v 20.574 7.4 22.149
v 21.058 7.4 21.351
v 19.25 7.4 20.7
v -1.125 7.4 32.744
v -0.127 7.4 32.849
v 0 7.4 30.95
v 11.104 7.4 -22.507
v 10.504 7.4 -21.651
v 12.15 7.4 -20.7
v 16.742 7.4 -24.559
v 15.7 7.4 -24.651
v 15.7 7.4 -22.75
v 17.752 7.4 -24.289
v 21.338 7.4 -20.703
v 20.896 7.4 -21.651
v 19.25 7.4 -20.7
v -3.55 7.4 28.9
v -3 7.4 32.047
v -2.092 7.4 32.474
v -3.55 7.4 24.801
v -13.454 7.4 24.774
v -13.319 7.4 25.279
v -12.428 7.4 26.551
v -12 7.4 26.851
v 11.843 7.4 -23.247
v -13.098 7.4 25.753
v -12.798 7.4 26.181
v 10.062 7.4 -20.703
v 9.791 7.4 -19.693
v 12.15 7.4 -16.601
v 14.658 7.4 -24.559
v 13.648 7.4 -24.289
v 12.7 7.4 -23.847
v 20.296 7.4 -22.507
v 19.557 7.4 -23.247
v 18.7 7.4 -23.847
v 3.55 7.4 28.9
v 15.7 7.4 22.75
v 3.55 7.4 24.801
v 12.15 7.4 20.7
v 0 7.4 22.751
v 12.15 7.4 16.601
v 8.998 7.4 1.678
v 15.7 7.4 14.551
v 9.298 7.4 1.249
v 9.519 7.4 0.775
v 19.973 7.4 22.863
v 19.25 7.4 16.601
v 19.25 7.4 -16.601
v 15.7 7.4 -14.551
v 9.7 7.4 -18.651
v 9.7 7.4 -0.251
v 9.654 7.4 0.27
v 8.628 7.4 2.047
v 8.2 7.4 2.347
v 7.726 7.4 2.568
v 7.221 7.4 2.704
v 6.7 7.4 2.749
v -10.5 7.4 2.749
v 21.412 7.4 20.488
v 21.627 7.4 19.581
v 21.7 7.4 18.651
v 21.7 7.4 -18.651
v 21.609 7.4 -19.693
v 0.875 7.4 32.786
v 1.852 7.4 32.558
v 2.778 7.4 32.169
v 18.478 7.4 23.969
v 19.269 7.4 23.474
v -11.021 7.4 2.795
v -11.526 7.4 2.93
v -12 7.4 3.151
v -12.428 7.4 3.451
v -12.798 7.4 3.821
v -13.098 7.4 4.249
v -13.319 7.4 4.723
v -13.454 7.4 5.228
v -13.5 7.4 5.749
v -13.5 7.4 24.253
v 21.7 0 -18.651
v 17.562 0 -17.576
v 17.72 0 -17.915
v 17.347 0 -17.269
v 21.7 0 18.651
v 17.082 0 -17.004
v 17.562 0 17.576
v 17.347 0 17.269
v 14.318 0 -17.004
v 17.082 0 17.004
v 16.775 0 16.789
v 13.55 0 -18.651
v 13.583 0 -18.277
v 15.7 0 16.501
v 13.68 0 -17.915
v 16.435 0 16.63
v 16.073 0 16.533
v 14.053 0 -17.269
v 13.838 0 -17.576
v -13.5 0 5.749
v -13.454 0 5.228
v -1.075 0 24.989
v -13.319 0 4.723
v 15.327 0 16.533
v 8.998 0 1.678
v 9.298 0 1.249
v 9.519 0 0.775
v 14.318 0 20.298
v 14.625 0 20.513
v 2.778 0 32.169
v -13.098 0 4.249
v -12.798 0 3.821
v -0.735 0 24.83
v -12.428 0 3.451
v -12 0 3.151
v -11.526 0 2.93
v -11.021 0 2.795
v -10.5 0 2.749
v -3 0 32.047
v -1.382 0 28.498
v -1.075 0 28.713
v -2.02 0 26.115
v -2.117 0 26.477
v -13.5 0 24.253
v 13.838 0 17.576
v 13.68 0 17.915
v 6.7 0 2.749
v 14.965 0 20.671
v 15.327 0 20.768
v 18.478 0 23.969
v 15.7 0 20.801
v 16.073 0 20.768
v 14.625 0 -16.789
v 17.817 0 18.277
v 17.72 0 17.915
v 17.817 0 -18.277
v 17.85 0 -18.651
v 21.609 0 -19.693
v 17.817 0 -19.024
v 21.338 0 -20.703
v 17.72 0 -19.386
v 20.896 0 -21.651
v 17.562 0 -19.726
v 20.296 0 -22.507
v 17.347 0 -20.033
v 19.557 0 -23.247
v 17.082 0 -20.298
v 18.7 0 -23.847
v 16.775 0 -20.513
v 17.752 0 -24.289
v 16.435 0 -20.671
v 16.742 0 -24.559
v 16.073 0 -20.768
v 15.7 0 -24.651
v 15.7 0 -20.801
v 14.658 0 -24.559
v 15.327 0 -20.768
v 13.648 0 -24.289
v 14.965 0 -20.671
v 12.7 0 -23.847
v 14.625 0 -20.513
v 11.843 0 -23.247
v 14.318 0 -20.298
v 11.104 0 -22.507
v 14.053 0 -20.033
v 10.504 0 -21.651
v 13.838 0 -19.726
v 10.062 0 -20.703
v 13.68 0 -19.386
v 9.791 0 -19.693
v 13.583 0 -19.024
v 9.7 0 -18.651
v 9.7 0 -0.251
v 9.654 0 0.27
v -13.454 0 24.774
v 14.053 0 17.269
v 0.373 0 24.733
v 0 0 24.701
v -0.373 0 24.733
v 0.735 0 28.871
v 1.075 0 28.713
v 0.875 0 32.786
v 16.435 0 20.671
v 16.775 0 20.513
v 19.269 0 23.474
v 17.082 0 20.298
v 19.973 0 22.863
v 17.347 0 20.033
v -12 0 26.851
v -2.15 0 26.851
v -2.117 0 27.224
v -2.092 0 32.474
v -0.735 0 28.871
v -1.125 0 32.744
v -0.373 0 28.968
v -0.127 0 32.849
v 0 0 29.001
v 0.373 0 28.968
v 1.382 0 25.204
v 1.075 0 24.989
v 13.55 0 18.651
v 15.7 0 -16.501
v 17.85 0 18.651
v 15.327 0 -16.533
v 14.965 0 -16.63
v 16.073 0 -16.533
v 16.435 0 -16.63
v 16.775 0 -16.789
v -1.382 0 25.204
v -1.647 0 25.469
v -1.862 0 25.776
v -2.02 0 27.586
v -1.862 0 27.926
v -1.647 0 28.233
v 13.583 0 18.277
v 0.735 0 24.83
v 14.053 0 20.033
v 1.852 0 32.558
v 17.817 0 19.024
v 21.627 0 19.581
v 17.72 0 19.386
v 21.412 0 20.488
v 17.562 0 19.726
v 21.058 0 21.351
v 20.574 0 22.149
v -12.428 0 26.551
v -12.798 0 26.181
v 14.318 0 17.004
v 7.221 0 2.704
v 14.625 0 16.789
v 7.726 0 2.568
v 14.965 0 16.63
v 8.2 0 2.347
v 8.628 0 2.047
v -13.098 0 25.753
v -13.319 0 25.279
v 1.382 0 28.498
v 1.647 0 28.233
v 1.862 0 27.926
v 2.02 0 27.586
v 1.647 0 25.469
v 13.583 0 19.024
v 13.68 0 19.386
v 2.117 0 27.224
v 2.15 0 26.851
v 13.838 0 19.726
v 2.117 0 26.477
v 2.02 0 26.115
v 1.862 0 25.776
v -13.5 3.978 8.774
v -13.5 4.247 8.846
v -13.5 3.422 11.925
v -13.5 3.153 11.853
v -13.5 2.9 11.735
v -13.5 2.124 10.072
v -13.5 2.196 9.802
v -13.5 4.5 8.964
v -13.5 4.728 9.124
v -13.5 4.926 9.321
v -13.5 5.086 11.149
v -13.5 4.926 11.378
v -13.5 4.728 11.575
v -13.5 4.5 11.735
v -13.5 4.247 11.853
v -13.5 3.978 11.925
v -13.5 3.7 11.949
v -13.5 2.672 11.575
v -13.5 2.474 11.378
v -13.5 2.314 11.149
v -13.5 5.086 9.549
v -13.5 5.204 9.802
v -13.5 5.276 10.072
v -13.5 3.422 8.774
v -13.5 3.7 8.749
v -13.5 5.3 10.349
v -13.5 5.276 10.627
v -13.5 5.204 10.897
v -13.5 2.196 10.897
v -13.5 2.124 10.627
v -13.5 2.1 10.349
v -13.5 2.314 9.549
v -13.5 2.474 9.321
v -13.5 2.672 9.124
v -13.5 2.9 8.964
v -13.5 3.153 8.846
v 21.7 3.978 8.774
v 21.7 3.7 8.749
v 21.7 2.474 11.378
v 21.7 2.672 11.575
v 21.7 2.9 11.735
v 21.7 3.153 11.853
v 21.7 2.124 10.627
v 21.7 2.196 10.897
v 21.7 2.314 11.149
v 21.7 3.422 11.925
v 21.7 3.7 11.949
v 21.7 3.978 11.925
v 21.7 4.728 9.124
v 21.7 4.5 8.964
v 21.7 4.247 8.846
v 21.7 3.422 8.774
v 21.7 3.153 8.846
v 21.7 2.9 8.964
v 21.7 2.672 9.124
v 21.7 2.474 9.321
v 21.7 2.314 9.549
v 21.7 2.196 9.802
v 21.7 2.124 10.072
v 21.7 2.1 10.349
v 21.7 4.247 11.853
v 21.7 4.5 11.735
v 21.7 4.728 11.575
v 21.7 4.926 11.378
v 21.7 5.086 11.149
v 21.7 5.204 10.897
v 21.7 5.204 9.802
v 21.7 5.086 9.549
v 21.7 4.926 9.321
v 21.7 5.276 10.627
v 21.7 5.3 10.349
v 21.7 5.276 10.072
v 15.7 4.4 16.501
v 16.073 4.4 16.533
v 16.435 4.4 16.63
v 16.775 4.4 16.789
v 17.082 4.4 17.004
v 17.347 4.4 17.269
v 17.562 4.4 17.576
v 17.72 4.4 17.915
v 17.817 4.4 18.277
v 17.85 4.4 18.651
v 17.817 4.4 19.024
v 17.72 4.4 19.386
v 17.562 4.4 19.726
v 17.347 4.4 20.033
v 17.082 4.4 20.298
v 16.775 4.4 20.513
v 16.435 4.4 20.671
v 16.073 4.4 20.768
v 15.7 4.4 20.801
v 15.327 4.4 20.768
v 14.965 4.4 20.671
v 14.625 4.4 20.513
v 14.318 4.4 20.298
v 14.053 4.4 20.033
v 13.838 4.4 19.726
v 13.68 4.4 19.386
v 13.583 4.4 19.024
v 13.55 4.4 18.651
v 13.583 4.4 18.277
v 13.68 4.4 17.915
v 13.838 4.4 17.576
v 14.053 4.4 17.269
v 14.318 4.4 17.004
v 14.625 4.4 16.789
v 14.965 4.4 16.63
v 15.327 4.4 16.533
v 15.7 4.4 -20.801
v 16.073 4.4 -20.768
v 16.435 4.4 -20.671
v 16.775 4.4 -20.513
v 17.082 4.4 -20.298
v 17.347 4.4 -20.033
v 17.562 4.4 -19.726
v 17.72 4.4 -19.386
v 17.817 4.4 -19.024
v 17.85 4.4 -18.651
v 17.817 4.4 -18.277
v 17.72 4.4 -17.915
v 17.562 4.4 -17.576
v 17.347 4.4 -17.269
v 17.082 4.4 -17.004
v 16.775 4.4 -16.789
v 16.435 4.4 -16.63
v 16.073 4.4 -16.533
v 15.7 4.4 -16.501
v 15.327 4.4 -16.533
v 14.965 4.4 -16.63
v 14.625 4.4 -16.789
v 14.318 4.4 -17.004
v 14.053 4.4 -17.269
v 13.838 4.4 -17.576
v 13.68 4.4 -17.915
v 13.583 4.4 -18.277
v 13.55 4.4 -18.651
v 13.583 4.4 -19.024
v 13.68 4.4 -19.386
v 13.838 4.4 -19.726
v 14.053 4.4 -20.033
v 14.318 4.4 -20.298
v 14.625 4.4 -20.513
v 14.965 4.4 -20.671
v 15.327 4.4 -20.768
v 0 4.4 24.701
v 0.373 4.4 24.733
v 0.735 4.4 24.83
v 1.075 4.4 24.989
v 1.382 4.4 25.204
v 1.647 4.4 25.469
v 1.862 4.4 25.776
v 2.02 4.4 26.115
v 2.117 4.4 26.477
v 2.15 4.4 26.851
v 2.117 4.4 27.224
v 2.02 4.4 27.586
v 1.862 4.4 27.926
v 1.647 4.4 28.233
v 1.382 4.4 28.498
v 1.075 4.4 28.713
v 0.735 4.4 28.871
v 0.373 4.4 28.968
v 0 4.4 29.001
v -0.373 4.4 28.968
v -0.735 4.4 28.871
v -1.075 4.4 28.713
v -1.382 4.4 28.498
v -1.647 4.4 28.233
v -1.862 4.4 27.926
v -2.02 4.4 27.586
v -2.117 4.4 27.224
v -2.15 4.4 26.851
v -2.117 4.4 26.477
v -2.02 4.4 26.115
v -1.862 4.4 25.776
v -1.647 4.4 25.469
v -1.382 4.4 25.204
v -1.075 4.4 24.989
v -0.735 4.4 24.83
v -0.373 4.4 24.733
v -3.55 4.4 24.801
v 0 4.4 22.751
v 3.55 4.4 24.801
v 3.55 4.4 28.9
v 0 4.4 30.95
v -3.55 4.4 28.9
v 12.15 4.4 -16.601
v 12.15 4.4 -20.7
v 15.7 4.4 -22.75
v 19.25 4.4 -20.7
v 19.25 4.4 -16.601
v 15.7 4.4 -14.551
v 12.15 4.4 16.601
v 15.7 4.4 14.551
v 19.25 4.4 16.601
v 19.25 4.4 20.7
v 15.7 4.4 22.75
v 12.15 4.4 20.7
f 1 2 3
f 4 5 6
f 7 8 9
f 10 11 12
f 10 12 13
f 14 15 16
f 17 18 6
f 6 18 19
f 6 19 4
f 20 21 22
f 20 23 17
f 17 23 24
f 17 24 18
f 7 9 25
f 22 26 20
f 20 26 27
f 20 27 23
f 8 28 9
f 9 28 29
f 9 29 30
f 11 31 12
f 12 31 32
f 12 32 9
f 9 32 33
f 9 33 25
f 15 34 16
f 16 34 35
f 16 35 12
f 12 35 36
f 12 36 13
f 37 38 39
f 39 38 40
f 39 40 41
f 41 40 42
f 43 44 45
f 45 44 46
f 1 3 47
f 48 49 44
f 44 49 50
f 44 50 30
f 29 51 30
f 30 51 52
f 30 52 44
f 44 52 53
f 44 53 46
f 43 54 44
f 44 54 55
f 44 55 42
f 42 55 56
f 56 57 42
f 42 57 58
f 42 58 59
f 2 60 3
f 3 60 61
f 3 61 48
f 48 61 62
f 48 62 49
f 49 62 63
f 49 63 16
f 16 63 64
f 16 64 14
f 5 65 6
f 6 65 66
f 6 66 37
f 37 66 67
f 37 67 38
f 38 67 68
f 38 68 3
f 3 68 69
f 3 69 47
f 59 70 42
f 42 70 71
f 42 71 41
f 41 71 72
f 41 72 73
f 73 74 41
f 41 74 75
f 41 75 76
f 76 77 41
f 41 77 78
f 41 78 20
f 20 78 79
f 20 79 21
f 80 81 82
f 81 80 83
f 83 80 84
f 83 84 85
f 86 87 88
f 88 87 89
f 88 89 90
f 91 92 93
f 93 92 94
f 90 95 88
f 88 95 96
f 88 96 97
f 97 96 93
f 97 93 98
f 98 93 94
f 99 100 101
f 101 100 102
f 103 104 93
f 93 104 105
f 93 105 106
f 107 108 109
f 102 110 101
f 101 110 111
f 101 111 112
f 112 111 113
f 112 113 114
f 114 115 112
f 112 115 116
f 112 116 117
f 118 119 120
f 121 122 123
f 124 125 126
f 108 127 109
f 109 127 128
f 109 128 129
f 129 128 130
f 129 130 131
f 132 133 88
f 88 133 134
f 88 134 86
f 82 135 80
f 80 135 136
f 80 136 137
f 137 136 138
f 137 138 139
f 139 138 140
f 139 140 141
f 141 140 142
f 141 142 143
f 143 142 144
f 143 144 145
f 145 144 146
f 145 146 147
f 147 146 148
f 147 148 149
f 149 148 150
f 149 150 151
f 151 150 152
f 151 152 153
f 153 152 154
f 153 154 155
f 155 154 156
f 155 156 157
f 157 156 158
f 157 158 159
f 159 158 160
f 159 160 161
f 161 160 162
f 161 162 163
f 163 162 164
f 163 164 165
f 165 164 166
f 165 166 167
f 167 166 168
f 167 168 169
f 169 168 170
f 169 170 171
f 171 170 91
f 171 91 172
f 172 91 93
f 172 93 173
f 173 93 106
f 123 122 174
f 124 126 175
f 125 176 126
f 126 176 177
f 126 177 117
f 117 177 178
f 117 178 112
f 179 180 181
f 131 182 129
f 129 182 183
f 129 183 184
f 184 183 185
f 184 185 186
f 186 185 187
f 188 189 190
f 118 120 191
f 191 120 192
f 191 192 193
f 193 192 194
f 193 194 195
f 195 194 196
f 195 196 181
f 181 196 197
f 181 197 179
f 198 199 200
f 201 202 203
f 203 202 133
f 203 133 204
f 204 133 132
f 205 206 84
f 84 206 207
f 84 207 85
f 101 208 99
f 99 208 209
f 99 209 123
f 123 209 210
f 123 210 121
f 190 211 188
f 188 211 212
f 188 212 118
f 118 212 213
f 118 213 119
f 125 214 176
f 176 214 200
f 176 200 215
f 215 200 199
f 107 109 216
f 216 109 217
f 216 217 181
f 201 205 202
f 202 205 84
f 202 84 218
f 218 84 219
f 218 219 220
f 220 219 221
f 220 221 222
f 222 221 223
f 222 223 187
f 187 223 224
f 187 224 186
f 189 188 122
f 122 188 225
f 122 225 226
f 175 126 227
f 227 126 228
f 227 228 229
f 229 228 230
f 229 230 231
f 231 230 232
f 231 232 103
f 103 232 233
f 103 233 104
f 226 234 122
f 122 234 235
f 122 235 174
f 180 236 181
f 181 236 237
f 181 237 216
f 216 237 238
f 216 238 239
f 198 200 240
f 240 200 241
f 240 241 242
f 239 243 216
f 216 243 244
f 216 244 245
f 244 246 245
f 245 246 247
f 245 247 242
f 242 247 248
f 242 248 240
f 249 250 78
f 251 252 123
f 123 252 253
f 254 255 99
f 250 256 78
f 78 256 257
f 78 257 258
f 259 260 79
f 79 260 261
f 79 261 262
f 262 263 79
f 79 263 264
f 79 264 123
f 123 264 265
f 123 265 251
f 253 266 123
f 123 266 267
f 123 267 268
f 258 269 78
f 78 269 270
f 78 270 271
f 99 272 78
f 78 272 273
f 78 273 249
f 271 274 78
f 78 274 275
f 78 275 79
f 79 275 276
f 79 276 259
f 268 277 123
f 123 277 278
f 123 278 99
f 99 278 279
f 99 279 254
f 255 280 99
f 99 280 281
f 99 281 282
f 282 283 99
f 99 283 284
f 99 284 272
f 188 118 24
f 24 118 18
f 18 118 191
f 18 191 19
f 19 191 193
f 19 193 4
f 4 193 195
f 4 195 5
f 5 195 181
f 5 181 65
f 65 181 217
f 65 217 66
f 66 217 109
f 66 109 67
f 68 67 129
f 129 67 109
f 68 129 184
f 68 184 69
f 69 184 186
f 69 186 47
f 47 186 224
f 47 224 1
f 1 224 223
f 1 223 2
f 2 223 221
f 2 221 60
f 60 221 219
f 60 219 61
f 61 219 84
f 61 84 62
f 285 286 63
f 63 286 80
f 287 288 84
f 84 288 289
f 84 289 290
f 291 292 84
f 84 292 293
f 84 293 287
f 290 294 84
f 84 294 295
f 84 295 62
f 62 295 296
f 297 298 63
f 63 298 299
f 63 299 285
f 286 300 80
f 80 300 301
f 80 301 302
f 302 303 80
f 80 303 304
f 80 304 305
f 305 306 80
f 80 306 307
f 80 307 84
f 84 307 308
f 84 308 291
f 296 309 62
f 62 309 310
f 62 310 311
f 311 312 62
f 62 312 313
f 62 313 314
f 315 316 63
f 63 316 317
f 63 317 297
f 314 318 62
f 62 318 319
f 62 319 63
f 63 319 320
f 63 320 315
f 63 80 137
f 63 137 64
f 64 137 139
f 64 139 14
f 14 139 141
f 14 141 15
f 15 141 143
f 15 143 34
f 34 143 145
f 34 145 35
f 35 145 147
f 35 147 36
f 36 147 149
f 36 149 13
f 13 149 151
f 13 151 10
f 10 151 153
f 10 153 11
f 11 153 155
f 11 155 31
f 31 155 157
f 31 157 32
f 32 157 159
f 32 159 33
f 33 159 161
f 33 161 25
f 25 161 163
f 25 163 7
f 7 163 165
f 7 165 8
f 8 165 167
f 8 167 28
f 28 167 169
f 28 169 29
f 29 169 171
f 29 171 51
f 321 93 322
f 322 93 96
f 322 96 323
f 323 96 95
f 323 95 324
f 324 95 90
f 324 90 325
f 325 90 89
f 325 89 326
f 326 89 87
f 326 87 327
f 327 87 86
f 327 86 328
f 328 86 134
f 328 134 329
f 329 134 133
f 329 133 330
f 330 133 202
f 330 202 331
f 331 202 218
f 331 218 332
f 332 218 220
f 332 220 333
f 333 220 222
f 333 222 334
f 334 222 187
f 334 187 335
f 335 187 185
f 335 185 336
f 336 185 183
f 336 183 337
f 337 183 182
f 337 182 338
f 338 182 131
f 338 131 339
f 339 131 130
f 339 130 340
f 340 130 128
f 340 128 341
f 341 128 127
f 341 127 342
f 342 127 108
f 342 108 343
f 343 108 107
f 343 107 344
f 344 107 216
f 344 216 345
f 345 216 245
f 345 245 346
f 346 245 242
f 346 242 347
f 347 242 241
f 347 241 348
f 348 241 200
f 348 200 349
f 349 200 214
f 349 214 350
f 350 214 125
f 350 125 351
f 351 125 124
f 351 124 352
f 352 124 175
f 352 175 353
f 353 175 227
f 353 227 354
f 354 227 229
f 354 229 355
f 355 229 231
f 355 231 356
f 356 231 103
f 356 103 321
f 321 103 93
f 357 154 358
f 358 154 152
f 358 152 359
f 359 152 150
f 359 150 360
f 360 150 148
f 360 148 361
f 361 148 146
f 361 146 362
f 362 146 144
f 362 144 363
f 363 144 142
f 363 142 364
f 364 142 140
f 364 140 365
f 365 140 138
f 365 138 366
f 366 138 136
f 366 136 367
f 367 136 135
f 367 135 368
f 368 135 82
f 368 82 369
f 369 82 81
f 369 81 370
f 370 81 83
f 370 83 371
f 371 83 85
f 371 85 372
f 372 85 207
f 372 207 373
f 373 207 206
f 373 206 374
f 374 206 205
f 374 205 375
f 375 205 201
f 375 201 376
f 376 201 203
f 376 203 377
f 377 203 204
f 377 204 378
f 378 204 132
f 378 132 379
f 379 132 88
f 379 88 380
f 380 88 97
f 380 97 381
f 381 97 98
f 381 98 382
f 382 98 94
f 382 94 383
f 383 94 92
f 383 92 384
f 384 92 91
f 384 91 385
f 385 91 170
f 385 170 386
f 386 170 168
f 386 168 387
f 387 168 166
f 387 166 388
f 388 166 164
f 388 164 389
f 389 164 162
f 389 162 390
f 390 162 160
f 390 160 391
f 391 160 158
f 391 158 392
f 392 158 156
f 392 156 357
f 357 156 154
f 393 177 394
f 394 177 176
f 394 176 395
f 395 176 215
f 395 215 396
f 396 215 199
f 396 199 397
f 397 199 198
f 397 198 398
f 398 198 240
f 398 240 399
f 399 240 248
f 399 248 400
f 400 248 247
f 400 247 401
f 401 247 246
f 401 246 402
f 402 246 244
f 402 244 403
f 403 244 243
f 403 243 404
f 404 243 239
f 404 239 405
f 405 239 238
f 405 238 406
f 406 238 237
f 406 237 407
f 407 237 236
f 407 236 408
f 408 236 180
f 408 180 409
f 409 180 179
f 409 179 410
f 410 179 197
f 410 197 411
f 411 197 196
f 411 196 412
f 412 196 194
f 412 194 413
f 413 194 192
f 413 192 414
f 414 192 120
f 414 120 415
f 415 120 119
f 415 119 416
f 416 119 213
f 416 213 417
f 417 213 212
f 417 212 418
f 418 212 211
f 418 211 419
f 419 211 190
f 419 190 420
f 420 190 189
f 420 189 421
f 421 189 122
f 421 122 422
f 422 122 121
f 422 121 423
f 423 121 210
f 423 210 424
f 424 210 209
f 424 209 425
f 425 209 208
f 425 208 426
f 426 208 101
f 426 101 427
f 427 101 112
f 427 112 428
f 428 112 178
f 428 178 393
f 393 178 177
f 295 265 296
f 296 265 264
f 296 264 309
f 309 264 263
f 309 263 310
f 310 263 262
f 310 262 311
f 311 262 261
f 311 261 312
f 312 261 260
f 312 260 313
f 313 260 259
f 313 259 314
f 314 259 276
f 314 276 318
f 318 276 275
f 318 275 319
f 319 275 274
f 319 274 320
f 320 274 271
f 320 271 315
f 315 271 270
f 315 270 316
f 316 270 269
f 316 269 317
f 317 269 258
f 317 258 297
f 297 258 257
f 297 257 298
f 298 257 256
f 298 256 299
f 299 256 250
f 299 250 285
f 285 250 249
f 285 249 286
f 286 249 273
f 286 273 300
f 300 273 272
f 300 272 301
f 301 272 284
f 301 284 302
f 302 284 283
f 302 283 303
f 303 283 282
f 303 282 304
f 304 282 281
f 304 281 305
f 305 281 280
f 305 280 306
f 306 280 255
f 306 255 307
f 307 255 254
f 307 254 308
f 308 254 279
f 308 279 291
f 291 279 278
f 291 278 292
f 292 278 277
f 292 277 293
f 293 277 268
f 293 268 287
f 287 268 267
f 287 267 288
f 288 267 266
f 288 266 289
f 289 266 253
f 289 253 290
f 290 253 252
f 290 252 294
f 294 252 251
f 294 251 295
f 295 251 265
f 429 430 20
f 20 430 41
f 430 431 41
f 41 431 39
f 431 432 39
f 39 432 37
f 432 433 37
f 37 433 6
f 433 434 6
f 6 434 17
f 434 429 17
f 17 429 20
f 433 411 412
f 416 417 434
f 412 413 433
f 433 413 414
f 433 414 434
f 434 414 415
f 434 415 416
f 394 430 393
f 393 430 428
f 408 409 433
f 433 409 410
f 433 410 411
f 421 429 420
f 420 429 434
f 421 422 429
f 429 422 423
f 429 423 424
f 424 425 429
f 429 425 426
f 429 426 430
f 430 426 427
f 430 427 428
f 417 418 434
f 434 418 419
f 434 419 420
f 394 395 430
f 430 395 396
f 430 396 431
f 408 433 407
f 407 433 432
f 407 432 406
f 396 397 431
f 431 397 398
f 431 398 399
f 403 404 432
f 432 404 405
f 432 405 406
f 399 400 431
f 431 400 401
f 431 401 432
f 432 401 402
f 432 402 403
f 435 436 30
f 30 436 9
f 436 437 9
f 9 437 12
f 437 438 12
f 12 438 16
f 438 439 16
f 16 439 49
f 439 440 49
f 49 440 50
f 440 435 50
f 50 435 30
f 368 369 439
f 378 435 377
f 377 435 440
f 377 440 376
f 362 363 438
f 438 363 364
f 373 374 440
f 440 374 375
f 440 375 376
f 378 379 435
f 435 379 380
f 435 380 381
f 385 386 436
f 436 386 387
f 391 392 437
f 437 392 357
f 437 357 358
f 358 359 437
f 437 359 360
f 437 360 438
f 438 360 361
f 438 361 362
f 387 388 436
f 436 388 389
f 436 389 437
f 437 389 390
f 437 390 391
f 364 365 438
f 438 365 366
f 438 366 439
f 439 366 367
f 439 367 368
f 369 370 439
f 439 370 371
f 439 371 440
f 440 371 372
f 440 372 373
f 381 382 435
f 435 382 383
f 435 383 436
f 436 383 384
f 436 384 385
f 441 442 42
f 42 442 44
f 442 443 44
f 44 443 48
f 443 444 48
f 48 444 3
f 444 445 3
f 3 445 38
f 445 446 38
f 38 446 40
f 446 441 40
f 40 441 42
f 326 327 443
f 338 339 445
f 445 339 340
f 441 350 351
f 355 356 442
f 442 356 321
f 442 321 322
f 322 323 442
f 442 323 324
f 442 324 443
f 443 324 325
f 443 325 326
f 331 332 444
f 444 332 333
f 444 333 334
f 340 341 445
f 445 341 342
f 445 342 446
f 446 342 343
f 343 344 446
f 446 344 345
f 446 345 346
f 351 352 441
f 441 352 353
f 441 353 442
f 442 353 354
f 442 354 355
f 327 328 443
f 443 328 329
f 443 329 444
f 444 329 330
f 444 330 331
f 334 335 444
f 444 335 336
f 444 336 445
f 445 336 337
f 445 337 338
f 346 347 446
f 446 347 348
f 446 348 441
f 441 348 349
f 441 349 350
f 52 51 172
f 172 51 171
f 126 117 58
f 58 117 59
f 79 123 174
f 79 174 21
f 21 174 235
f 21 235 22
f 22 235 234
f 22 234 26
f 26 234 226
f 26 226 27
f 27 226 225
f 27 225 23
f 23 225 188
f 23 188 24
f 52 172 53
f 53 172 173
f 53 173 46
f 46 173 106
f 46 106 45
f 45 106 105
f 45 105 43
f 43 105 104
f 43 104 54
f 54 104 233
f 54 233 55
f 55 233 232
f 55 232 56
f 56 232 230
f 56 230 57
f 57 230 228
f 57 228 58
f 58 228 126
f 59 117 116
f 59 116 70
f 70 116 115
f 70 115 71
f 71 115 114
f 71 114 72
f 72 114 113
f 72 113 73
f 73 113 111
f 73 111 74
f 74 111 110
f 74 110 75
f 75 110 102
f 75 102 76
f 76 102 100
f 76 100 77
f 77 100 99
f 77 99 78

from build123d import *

# Parameters (mm, degrees)
SKETCH2_R               = 2.15
BOSS_EXTRUDE1_DEPTH     = 7.4
CUT_EXTRUDE4_DEPTH      = 49.713080647
CUT_EXTRUDE4_DEPTH_BACK = 49.713080647
SKETCH3_R               = 1.6
CUT_EXTRUDE1_DEPTH      = 3
CUT_EXTRUDE5_DEPTH      = 41.060132627
FILLET1_R               = 3


with BuildPart() as part:
    # Sketch2 → Boss-Extrude1 (new body)
    with BuildSketch(Plane(origin=(0, 0, 0), x_dir=(1, 0, 0), z_dir=(0, 1, 0))):
        with BuildLine():
            Line((-13.5, -25.984609691), (-3, -32.046787517))
            ThreePointArc((-3, -32.046787517), (-0.126819274, -32.849294684), (2.777711124, -32.168935661))
            Line((2.777711124, -32.168935661), (18.477711124, -23.968935661))
            ThreePointArc((18.477711124, -23.968935661), (20.831581956, -21.759793603), (21.7, -18.650635095))
            Line((21.7, -18.650635095), (21.7, 18.650635095))
            ThreePointArc((21.7, 18.650635095), (19.942640687, 22.893275782), (15.7, 24.650635095))
            Line((15.7, 24.650635095), (11.5, 24.650635095))
            Line((11.5, 24.650635095), (-13.5, 24.650635095))
            Line((-13.5, 24.650635095), (-13.5, -22.650635095))
            Line((-13.5, -22.650635095), (-13.5, -25.984609691))
        make_face()
        with Locations(Location((0, -26.850635095, 0), (0, 0, 270))):
            Circle(SKETCH2_R, mode=Mode.SUBTRACT)
        with Locations(Location((15.7, -18.650635095, 0), (0, 0, 270))):
            Circle(SKETCH2_R, mode=Mode.SUBTRACT)
        with Locations(Location((15.7, 18.650635095, 0), (0, 0, 270))):
            Circle(SKETCH2_R, mode=Mode.SUBTRACT)
    extrude(amount=BOSS_EXTRUDE1_DEPTH)

    # Sketch3 → Cut-Extrude4 (cut, two sides: drawn at the far end of the back side and taken through both)
    with BuildSketch(Plane.ZY.offset(-21.7).offset(-CUT_EXTRUDE4_DEPTH_BACK)):
        with Locations((10.349364905, 3.7)):
            Circle(SKETCH3_R)
    extrude(amount=CUT_EXTRUDE4_DEPTH + CUT_EXTRUDE4_DEPTH_BACK, mode=Mode.SUBTRACT)

    # Sketch4 → Cut-Extrude1 (cut)
    with BuildSketch(Plane.XZ.offset(-7.4)):
        Polygon((0, 22.751448183), (3.55, 24.801041639), (3.55, 28.90022855), (0, 30.949822006), (-3.55, 28.90022855), (-3.55, 24.801041639), align=None)
        Polygon((15.7, 14.551448183), (19.25, 16.601041639), (19.25, 20.70022855), (15.7, 22.749822006), (12.15, 20.70022855), (12.15, 16.601041639), align=None)
        Polygon((12.15, -20.70022855), (15.7, -22.749822006), (19.25, -20.70022855), (19.25, -16.601041639), (15.7, -14.551448183), (12.15, -16.601041639), align=None)
    extrude(amount=CUT_EXTRUDE1_DEPTH, mode=Mode.SUBTRACT)

    # Sketch5 → Cut-Extrude5 (cut, through all)
    with BuildSketch(Plane(origin=(0, 7.4, 0), x_dir=(1, 0, 0), z_dir=(0, 1, 0))):
        with BuildLine():
            Line((-13.5, 24.650635095), (-13.5, -2.749364905))
            Line((-13.5, -2.749364905), (9.7, -2.749364905))
            Line((9.7, -2.749364905), (9.7, 18.650635095))
            ThreePointArc((9.7, 18.650635095), (11.457359313, 22.893275782), (15.7, 24.650635095))
            Line((15.7, 24.650635095), (-13.5, 24.650635095))
        make_face()
    extrude(amount=-CUT_EXTRUDE5_DEPTH, mode=Mode.SUBTRACT)

    # Fillet1
    fillet1_edges = [part.edges().sort_by_distance(p)[0] for p in [
        (9.7, 3.7, 2.749364905),
        (-13.5, 3.7, 2.749364905),
        (-13.5, 3.7, 25.984609691),
    ]]
    fillet(fillet1_edges, radius=FILLET1_R)


solid = part.part
